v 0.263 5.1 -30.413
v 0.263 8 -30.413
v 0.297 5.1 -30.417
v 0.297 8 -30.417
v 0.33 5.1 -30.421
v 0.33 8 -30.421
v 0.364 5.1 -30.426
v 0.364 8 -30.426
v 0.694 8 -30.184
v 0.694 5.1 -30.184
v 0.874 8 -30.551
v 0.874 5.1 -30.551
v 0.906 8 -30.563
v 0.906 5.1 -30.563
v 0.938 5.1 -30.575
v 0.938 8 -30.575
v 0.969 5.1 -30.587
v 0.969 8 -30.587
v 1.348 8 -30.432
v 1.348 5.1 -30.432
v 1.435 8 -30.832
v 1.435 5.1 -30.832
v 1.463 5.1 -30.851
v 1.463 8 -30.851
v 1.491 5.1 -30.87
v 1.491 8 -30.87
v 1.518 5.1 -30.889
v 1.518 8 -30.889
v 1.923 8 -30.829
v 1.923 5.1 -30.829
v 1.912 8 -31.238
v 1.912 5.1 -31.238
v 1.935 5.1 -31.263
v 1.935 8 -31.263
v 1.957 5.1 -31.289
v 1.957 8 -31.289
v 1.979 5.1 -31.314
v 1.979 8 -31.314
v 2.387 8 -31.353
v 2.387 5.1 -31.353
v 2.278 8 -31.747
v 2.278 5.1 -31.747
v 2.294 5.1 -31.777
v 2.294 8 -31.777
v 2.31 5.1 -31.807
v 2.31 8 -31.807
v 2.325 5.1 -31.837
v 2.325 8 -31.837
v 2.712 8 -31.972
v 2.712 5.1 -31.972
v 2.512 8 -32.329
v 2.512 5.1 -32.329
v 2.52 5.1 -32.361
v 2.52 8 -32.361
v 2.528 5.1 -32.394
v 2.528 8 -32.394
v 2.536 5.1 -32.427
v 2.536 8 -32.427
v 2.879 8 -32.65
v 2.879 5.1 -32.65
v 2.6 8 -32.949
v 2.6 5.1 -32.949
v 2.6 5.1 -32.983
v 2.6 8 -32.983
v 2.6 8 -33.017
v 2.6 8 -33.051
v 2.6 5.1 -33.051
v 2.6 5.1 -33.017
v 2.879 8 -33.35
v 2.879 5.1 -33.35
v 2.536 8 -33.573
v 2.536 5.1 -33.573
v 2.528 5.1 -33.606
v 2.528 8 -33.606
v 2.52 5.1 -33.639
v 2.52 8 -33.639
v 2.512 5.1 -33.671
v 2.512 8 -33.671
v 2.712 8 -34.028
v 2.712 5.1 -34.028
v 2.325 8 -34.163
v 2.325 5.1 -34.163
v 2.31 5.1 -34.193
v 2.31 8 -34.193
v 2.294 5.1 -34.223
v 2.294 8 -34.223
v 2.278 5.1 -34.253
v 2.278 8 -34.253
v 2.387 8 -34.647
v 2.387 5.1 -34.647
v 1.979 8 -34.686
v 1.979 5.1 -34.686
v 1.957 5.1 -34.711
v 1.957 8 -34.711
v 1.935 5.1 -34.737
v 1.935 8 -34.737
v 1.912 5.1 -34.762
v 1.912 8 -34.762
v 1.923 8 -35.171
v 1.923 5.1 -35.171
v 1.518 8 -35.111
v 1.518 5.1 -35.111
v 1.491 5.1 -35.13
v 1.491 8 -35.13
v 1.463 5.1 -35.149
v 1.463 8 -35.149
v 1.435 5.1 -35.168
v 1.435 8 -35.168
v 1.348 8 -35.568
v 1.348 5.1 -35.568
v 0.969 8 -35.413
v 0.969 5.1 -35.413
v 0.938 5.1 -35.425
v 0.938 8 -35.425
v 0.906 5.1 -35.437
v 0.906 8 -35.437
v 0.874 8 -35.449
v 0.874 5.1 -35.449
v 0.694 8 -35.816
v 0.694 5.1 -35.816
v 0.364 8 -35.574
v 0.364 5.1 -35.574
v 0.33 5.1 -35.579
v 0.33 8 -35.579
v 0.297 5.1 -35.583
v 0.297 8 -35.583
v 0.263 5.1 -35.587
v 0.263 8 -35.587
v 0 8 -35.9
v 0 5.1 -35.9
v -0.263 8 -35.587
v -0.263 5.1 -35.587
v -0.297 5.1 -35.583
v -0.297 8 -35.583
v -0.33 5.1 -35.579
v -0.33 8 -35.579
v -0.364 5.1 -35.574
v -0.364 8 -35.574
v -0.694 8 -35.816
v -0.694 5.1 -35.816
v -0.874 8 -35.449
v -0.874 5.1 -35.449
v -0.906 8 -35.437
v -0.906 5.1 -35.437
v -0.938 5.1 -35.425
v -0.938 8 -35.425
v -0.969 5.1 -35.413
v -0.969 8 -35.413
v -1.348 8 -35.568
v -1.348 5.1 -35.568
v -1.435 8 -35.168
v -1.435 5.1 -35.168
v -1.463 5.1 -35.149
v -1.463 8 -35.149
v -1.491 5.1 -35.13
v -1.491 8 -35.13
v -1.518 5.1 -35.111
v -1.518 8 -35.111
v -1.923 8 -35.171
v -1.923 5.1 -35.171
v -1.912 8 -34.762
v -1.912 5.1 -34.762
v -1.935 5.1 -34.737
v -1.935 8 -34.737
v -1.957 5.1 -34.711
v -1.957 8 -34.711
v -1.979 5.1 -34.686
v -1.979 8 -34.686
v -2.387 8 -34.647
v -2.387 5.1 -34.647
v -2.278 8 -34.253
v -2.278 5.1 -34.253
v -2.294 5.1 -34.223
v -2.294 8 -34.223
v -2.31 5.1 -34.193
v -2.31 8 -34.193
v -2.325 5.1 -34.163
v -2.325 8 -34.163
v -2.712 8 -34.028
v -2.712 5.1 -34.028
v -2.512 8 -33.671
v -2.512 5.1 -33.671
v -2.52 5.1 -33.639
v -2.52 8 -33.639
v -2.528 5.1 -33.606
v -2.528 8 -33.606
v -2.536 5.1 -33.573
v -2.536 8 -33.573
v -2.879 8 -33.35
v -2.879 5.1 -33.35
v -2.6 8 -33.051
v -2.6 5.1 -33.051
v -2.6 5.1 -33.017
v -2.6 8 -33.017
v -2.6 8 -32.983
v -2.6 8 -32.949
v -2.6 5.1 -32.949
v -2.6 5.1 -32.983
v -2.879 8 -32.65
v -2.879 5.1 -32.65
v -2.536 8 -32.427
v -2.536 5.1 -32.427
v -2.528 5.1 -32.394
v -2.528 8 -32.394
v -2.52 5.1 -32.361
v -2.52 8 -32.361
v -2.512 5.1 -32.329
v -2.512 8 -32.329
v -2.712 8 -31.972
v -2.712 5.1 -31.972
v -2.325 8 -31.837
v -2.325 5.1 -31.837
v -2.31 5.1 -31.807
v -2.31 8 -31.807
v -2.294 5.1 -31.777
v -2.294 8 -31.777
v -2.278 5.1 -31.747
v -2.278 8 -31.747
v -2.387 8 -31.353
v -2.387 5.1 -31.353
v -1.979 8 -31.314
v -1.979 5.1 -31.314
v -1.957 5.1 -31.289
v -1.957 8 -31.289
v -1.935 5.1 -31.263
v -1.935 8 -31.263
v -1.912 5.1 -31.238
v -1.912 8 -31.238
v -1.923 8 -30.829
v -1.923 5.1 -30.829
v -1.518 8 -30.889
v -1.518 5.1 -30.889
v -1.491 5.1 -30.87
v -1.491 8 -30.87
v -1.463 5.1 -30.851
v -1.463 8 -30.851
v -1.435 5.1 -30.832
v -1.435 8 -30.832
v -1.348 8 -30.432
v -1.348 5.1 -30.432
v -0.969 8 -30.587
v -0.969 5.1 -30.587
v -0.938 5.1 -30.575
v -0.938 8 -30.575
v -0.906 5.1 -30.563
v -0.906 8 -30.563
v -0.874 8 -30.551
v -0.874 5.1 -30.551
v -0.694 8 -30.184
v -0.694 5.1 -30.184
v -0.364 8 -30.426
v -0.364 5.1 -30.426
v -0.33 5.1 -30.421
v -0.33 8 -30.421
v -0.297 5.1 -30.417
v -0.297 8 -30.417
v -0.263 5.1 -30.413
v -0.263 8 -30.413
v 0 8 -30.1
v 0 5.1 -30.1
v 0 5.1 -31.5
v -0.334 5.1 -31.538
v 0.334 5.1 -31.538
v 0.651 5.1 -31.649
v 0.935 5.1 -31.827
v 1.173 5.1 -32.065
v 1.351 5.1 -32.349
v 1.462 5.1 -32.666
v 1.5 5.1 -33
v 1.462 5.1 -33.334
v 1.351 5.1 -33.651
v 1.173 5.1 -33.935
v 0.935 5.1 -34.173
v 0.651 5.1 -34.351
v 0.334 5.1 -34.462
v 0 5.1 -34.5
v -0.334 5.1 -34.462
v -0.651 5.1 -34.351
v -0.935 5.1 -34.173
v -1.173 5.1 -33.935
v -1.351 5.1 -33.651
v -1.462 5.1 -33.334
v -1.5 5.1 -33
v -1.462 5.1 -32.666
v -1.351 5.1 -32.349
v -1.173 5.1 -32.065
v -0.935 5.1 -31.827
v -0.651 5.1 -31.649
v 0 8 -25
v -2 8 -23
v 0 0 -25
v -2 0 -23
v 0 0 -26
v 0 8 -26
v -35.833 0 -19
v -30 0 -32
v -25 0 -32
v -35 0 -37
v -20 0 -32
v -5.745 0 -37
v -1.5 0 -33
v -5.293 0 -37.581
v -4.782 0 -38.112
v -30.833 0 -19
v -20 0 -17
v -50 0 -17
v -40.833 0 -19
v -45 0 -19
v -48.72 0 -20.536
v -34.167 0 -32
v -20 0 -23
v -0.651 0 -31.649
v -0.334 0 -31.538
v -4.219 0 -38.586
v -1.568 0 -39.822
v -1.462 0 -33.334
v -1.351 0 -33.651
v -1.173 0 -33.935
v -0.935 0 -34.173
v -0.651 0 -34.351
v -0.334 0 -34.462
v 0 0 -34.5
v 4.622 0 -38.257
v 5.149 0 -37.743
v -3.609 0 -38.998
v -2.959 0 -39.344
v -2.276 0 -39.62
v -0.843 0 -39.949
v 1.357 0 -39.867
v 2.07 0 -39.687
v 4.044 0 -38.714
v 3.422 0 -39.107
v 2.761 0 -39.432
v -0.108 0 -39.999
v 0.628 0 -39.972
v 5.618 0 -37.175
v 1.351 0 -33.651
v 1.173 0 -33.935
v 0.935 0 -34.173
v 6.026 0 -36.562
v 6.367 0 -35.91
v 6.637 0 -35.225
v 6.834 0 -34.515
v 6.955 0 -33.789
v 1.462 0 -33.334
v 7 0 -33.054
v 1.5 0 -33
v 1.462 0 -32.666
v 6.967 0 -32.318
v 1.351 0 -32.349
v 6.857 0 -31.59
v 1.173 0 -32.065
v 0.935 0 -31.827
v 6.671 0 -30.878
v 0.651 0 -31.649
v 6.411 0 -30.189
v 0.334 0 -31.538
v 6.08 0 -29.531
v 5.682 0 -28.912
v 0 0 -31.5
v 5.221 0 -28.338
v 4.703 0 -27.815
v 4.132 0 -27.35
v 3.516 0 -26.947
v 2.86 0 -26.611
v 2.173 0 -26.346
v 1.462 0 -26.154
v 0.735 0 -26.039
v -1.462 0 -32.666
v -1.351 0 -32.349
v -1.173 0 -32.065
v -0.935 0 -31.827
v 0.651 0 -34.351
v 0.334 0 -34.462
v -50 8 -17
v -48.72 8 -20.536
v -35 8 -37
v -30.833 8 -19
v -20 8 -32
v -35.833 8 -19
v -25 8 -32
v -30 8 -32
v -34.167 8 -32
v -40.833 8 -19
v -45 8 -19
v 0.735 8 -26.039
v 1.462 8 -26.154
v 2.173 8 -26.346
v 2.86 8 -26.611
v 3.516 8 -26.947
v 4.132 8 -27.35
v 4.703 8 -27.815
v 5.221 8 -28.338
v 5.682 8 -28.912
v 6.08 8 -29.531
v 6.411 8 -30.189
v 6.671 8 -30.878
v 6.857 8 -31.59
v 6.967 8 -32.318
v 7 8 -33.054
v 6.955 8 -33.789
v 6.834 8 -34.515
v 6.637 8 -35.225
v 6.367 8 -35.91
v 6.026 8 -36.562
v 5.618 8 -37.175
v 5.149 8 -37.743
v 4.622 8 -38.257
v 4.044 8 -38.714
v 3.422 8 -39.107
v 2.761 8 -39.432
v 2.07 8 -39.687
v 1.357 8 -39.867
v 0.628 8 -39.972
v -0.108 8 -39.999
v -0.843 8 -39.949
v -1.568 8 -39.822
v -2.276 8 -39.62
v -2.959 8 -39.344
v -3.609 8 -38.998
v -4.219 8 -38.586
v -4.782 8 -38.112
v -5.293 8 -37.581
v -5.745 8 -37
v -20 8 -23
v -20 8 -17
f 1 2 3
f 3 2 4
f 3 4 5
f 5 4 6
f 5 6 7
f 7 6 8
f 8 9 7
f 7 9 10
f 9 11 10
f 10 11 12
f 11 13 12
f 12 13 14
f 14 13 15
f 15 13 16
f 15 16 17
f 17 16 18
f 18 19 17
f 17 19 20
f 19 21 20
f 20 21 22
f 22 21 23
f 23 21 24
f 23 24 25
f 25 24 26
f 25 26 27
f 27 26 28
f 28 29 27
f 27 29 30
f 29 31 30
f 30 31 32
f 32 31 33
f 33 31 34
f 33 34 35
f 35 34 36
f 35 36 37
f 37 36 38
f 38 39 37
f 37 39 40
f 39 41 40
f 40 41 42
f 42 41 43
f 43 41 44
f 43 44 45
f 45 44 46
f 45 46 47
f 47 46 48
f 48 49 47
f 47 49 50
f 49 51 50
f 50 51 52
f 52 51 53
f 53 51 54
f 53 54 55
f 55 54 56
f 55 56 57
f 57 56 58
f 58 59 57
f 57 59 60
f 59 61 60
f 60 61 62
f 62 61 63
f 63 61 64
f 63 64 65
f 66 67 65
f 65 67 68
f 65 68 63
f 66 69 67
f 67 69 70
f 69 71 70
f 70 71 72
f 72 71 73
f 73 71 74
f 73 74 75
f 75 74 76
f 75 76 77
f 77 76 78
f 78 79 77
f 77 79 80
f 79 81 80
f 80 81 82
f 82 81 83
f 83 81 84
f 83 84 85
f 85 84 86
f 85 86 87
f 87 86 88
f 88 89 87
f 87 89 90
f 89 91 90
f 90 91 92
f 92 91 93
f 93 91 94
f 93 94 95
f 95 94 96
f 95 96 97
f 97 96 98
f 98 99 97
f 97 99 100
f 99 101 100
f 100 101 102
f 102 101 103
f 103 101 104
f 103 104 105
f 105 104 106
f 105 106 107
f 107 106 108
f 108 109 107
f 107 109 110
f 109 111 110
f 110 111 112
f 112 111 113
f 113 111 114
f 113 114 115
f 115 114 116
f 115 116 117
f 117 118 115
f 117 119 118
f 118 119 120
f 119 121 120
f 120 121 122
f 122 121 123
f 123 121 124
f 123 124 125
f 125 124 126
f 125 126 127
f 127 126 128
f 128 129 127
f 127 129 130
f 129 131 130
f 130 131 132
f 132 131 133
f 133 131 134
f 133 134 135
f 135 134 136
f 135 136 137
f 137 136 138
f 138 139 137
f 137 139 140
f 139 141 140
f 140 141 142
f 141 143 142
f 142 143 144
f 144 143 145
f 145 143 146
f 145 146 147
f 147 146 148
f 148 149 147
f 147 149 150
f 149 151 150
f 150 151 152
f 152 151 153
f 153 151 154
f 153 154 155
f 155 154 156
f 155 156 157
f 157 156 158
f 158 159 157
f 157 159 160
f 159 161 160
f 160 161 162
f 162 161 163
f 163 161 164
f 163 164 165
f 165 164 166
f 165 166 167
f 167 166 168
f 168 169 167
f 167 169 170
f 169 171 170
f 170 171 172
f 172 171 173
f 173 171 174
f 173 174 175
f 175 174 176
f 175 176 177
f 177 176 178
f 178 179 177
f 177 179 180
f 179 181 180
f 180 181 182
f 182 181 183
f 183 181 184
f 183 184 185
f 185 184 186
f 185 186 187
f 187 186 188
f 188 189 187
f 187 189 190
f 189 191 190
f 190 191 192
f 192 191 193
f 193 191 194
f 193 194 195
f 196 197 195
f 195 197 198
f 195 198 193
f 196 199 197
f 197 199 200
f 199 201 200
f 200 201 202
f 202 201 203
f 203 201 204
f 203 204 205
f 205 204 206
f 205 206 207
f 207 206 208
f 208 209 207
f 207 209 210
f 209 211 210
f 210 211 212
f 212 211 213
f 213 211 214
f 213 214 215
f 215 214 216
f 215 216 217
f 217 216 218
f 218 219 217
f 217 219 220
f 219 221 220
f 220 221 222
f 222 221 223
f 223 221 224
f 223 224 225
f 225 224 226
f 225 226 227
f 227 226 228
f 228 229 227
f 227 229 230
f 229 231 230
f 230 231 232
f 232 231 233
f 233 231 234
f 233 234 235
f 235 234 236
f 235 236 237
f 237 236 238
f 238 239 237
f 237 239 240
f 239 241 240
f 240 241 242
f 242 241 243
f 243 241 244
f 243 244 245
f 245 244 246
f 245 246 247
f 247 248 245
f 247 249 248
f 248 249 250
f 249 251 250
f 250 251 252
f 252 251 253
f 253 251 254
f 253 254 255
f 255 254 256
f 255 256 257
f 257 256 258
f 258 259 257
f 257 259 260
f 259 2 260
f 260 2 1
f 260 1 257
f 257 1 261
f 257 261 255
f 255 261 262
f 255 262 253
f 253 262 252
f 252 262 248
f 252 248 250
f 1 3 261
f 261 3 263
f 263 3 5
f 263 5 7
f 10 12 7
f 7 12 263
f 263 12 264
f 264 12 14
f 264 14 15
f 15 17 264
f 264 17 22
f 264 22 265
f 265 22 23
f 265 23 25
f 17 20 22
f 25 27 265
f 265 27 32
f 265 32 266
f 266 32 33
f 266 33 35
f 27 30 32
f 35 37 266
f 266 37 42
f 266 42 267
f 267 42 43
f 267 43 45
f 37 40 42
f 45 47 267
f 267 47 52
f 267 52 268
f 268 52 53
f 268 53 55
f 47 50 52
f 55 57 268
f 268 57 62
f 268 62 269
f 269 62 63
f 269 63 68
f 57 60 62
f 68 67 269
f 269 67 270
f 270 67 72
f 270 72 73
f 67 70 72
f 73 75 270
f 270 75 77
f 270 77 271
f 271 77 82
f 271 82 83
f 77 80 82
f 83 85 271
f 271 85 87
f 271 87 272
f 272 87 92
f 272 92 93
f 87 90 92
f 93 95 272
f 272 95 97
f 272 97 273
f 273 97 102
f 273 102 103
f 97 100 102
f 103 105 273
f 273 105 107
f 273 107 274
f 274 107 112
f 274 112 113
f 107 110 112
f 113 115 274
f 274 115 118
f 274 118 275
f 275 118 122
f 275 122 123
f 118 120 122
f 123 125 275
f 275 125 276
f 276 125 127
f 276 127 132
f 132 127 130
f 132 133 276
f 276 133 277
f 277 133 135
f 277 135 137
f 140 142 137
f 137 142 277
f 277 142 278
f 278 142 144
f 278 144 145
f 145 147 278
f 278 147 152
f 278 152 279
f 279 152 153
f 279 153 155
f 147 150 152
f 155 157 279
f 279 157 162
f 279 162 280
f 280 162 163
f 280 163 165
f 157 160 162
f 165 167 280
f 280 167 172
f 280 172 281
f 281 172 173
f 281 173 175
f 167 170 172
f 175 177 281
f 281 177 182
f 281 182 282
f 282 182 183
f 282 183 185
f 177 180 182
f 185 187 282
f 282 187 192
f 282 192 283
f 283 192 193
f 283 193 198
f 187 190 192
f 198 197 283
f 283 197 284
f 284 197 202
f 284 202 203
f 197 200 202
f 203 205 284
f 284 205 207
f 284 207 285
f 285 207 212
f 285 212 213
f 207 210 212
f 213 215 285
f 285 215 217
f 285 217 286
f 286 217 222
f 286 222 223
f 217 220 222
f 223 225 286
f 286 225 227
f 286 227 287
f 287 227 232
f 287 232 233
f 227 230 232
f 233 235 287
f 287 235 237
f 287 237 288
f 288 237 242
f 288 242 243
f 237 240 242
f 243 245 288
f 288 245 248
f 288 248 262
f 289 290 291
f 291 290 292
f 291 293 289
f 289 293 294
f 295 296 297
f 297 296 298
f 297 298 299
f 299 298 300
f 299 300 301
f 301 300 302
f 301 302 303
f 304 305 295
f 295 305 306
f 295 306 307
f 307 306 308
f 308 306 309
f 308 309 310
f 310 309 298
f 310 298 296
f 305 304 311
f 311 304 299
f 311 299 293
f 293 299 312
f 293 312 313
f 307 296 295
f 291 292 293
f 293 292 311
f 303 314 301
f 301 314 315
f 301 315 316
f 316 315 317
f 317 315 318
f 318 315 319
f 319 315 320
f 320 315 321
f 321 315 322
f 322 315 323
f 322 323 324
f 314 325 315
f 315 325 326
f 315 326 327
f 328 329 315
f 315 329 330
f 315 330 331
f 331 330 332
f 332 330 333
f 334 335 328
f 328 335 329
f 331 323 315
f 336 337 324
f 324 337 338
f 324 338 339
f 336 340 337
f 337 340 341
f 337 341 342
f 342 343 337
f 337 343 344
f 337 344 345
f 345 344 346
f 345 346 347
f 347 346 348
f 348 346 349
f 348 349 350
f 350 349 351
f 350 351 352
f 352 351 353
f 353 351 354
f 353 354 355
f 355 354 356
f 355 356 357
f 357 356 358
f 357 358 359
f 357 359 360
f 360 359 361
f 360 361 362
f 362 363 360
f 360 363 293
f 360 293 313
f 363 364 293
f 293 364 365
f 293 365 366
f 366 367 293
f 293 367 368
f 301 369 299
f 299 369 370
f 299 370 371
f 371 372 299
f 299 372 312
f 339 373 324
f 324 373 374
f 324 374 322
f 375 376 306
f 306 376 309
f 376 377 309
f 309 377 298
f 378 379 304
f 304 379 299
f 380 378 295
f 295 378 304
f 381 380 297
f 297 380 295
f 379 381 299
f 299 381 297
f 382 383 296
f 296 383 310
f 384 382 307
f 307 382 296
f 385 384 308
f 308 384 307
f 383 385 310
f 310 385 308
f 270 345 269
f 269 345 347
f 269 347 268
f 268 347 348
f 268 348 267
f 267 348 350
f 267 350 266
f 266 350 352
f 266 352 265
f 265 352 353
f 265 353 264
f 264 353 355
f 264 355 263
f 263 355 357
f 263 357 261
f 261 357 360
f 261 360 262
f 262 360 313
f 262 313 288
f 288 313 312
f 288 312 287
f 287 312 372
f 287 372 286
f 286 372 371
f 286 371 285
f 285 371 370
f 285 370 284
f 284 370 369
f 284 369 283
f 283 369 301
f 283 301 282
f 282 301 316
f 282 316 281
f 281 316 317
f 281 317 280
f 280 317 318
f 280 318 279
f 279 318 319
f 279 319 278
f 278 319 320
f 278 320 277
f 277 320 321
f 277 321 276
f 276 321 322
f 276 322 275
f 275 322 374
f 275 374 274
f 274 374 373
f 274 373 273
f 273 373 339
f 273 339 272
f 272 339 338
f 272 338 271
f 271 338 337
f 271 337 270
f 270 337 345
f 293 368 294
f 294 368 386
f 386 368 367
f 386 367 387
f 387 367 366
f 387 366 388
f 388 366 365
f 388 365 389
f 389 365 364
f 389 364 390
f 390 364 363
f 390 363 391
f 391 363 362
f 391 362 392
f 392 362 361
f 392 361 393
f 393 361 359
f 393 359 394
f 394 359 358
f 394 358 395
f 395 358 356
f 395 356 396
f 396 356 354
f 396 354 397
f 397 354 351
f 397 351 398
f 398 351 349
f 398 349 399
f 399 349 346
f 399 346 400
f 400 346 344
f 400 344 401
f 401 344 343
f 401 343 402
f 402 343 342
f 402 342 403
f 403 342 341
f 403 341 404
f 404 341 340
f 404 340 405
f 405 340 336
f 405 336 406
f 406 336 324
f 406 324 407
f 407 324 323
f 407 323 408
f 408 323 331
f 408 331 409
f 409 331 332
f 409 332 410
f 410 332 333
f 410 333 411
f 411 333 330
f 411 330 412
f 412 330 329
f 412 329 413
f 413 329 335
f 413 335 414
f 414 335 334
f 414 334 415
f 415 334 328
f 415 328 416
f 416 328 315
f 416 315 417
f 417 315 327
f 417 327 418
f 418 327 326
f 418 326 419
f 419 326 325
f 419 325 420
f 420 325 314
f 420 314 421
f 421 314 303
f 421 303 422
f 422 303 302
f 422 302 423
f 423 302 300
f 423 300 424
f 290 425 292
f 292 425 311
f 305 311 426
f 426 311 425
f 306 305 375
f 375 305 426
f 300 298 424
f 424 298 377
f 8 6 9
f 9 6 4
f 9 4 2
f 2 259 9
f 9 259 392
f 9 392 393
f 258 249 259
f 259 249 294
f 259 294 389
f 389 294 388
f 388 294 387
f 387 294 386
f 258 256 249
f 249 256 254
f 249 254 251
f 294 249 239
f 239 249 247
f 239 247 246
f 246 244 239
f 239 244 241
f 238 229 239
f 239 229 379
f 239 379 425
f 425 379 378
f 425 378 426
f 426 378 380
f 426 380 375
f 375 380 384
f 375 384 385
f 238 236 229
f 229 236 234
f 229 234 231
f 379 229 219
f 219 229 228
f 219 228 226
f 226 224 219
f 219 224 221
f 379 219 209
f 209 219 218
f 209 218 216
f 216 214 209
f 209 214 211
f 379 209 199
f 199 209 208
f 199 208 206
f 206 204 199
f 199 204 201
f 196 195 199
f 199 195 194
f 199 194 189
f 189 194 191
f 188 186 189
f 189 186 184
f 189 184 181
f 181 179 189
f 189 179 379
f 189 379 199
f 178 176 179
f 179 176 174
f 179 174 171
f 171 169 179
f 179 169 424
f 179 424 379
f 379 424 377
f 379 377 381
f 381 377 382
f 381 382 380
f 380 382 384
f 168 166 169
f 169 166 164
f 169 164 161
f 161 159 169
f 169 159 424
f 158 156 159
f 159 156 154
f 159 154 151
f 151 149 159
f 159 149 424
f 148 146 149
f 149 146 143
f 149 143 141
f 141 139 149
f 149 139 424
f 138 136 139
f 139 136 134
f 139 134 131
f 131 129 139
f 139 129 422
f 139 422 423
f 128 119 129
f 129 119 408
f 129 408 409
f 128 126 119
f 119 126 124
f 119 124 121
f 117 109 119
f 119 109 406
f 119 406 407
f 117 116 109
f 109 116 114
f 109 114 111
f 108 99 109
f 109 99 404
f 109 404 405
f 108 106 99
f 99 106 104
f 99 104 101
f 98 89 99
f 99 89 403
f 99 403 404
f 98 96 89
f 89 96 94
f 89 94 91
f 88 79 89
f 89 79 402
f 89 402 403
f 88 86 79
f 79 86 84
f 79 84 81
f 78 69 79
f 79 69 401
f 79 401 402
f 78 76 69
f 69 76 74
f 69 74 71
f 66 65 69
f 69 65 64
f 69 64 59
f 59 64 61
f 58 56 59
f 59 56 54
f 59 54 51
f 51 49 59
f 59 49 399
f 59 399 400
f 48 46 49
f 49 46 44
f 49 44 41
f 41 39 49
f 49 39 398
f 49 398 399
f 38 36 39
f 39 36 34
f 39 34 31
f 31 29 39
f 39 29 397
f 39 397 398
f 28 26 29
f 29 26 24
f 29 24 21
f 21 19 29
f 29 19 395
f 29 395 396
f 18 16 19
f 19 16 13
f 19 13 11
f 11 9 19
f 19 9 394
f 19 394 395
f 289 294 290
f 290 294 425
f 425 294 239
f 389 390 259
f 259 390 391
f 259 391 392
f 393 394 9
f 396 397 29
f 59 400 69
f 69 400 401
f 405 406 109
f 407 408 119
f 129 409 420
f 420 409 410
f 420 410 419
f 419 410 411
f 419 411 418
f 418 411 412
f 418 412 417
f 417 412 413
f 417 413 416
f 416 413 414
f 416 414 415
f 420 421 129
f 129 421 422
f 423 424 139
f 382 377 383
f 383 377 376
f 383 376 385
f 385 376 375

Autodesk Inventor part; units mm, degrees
ref_plane "YZ Plane" through (0, 0, 0) normal (1, 0, 0) x (0, 1, 0)
ref_plane "XZ Plane" through (0, 0, 0) normal (0, 1, 0) x (-1, 0, 0)
ref_plane "XY Plane" through (0, 0, 0) normal (0, 0, 1) x (1, 0, 0)
sketch "Boceto1" plane through (0, 0, 0) normal (0, 1, 0) x (-1, 0, 0)
  line L0 (50, -16) -> (50, -16.5)
  line L1 (50, -16.5) -> (49.0807, -16.5)
  circle A0 centre (0, -33) radius 1.5
  circle A1 centre (0, -33) radius 3
  arc A2 (0, -26) -> (5.7446, -37) centre (0, -33) ccw
  line L2 (5.7446, -37) -> (35, -37)
  line L3 (35, -37) -> (50, -19)
  line L4 (0, -23) -> (20, -23)
  line L5 (20, -23) -> (20, -17)
  line L6 (20, -17) -> (50, -17)
  line L7 (50, -17) -> (50, -19)
  line L8 (0, -31.5) -> (0, -30)
  line L9 (0, -26) -> (0, -23)
  point P0 (0, -37)
  dimension "d9" = 0.5
extrude "Extrusión1" add sketch "Boceto1" along normal blind 8 contours A1 | L9 L4 L5 L6 L7 L3 L2 A2
sketch "Boceto6" plane through (0, 0, 0) normal (0, -1, 0) x (1, 0, 0)
  line L0 (-50, -17) -> (-20, -17) projected
  line L1 (-50, -16) -> (-50, -14) projected
  line L2 (-50, -17) -> (-50, -16)
  line L3 (-50, -16.5) -> (-16.403, -16.5)
  line L4 (-20, -23) -> (-25, -23)
  line L5 (-5.7446, -37) -> (-35, -37) projected
  line L6 (-25, -23) -> (-25, -28)
  line L7 (-25, -37) -> (-25, -32)
  line L8 (-25, -32) -> (-5.7446, -32)
  line L9 (-5.7446, -32) -> (-5.7446, -27.061)
  line L10 (-25, -28) -> (-5.7446, -28)
  line L11 (-35, -37) -> (-30, -37)
  line L12 (-30, -37) -> (-30, -32)
  line L13 (-30, -32) -> (-25, -32)
  line L14 (-50, -19) -> (-50, -17) projected
  line L15 (-50, -19) -> (-45, -19)
  line L16 (-30, -37) -> (-45, -19)
  line L17 (-45, -19) -> (-40, -19)
  line L18 (-30, -32) -> (-40.8333, -19)
  line L19 (-40.8333, -19) -> (-25, -19)
  line L20 (-25, -19) -> (-25, -28)
  line L21 (-30, -32) -> (-34.1667, -32)
  line L22 (-40.8333, -19) -> (-35.8333, -19)
  line L23 (-35.8333, -19) -> (-25, -32)
  line L24 (-35.8333, -19) -> (-30.8333, -19)
  line L25 (-25, -32) -> (-20, -32)
  line L26 (-20, -32) -> (-30.8333, -19)
  line L27 (-30, 4) -> (-45, -14)
  line L28 (-45, -14) -> (-40, -14)
  line L29 (-30, -1) -> (-40.8333, -14)
  line L30 (-30, -1) -> (-34.1667, -1)
  line L31 (-35.8333, -14) -> (-25, -1)
  line L32 (-35.8333, -14) -> (-30.8333, -14)
  line L33 (-25, -1) -> (-20, -1)
  line L34 (-20, -1) -> (-30.8333, -14)
  point P0 (0, 0)
  dimension "d28" = 5
  dimension "d29" = 5
  dimension "d30" = 5
  dimension "d31" = 5
  dimension "d32" = 5
  dimension "d33" = 5
  dimension "d34" = 5
  dimension "d35" = 5
  dimension "d36" = 5
extrude "Extrusión6" cut sketch "Boceto6" against normal blind 10 contours L23 L19 L26 L6 L10 L8 | L21 L16 L17 L18 | L10 L6 L26 | L30 L29 L28 L27 | L31 L33 L34 L32
chamfer "Chaflán1" distance 2 angle 45 2 edges at (-50, 4, -19) (0, 4, -23)
sketch "Boceto9" plane through (0, 8, 0) normal (0, 1, 0) x (1, 0, 0)
  circle A0 centre (0, 33) radius 1.5 projected
  circle A1 centre (0, 33) radius 2.6
  line L0 (0, 33) -> (0, 30.1)
  line L1 (0, 30.4) -> (0, 30.4753)
  line L2 (0, 30.4753) -> (0.263, 30.4753)
  line L3 (0.263, 30.4753) -> (-0.263, 30.4753)
  line L4 (-0.263, 30.4753) -> (-0.263, 29.9607)
  line L5 (0.263, 30.4753) -> (0.263, 30.0075)
  line L6 (0, 30.4) -> (0, 30.1)
  line L7 (0, 30.1) -> (0.263, 30.4133)
  line L8 (0, 30.1) -> (-0.263, 30.4133)
  line L9 (0.694, 30.1843) -> (0.8744, 30.5514)
  line L10 (0.694, 30.1843) -> (0.3637, 30.4256)
  line L11 (1.3477, 30.4322) -> (1.435, 30.8318)
  line L12 (1.3477, 30.4322) -> (0.9692, 30.5874)
  line L13 (1.9231, 30.8293) -> (1.9121, 31.2383)
  line L14 (1.9231, 30.8293) -> (1.5184, 30.8895)
  line L15 (2.3867, 31.3526) -> (2.2782, 31.7471)
  line L16 (2.3867, 31.3526) -> (1.9794, 31.3142)
  line L17 (2.7115, 31.9716) -> (2.5118, 32.3287)
  line L18 (2.7115, 31.9716) -> (2.3253, 31.8368)
  line L19 (2.8789, 32.6504) -> (2.5995, 32.9493)
  line L20 (2.8789, 32.6504) -> (2.5361, 32.4271)
  line L21 (2.8789, 33.3496) -> (2.5361, 33.5729)
  line L22 (2.8789, 33.3496) -> (2.5995, 33.0507)
  line L23 (2.7115, 34.0284) -> (2.3253, 34.1632)
  line L24 (2.7115, 34.0284) -> (2.5118, 33.6713)
  line L25 (2.3867, 34.6474) -> (1.9794, 34.6858)
  line L26 (2.3867, 34.6474) -> (2.2782, 34.2529)
  line L27 (1.9231, 35.1707) -> (1.5184, 35.1105)
  line L28 (1.9231, 35.1707) -> (1.9121, 34.7617)
  line L29 (1.3477, 35.5678) -> (0.9692, 35.4126)
  line L30 (1.3477, 35.5678) -> (1.435, 35.1682)
  line L31 (0.694, 35.8157) -> (0.3637, 35.5744)
  line L32 (0.694, 35.8157) -> (0.8744, 35.4486)
  line L33 (0, 35.9) -> (-0.263, 35.5867)
  line L34 (0, 35.9) -> (0.263, 35.5867)
  line L35 (-0.694, 35.8157) -> (-0.8744, 35.4486)
  line L36 (-0.694, 35.8157) -> (-0.3637, 35.5744)
  line L37 (-1.3477, 35.5678) -> (-1.435, 35.1682)
  line L38 (-1.3477, 35.5678) -> (-0.9692, 35.4126)
  line L39 (-1.9231, 35.1707) -> (-1.9121, 34.7617)
  line L40 (-1.9231, 35.1707) -> (-1.5184, 35.1105)
  line L41 (-2.3867, 34.6474) -> (-2.2782, 34.2529)
  line L42 (-2.3867, 34.6474) -> (-1.9794, 34.6858)
  line L43 (-2.7115, 34.0284) -> (-2.5118, 33.6713)
  line L44 (-2.7115, 34.0284) -> (-2.3253, 34.1632)
  line L45 (-2.8789, 33.3496) -> (-2.5995, 33.0507)
  line L46 (-2.8789, 33.3496) -> (-2.5361, 33.5729)
  line L47 (-2.8789, 32.6504) -> (-2.5361, 32.4271)
  line L48 (-2.8789, 32.6504) -> (-2.5995, 32.9493)
  line L49 (-2.7115, 31.9716) -> (-2.3253, 31.8368)
  line L50 (-2.7115, 31.9716) -> (-2.5118, 32.3287)
  line L51 (-2.3867, 31.3526) -> (-1.9794, 31.3142)
  line L52 (-2.3867, 31.3526) -> (-2.2782, 31.7471)
  line L53 (-1.9231, 30.8293) -> (-1.5184, 30.8895)
  line L54 (-1.9231, 30.8293) -> (-1.9121, 31.2383)
  line L55 (-1.3477, 30.4322) -> (-0.9692, 30.5874)
  line L56 (-1.3477, 30.4322) -> (-1.435, 30.8318)
  line L57 (-0.694, 30.1843) -> (-0.3637, 30.4256)
  line L58 (-0.694, 30.1843) -> (-0.8744, 30.5514)
  point P0 (0, 0)
  dimension "d47" = 5.2
  dimension "d48" = 2.9
  dimension "d49" = 0.263
  dimension "d50" = 0.526
  dimension "d51" = 0.3
  dimension "d54" = 360
extrude "Extrusión9" cut sketch "Boceto9" against normal blind 2.9
properties part number "pinza  individuial sg996r con rosca"
